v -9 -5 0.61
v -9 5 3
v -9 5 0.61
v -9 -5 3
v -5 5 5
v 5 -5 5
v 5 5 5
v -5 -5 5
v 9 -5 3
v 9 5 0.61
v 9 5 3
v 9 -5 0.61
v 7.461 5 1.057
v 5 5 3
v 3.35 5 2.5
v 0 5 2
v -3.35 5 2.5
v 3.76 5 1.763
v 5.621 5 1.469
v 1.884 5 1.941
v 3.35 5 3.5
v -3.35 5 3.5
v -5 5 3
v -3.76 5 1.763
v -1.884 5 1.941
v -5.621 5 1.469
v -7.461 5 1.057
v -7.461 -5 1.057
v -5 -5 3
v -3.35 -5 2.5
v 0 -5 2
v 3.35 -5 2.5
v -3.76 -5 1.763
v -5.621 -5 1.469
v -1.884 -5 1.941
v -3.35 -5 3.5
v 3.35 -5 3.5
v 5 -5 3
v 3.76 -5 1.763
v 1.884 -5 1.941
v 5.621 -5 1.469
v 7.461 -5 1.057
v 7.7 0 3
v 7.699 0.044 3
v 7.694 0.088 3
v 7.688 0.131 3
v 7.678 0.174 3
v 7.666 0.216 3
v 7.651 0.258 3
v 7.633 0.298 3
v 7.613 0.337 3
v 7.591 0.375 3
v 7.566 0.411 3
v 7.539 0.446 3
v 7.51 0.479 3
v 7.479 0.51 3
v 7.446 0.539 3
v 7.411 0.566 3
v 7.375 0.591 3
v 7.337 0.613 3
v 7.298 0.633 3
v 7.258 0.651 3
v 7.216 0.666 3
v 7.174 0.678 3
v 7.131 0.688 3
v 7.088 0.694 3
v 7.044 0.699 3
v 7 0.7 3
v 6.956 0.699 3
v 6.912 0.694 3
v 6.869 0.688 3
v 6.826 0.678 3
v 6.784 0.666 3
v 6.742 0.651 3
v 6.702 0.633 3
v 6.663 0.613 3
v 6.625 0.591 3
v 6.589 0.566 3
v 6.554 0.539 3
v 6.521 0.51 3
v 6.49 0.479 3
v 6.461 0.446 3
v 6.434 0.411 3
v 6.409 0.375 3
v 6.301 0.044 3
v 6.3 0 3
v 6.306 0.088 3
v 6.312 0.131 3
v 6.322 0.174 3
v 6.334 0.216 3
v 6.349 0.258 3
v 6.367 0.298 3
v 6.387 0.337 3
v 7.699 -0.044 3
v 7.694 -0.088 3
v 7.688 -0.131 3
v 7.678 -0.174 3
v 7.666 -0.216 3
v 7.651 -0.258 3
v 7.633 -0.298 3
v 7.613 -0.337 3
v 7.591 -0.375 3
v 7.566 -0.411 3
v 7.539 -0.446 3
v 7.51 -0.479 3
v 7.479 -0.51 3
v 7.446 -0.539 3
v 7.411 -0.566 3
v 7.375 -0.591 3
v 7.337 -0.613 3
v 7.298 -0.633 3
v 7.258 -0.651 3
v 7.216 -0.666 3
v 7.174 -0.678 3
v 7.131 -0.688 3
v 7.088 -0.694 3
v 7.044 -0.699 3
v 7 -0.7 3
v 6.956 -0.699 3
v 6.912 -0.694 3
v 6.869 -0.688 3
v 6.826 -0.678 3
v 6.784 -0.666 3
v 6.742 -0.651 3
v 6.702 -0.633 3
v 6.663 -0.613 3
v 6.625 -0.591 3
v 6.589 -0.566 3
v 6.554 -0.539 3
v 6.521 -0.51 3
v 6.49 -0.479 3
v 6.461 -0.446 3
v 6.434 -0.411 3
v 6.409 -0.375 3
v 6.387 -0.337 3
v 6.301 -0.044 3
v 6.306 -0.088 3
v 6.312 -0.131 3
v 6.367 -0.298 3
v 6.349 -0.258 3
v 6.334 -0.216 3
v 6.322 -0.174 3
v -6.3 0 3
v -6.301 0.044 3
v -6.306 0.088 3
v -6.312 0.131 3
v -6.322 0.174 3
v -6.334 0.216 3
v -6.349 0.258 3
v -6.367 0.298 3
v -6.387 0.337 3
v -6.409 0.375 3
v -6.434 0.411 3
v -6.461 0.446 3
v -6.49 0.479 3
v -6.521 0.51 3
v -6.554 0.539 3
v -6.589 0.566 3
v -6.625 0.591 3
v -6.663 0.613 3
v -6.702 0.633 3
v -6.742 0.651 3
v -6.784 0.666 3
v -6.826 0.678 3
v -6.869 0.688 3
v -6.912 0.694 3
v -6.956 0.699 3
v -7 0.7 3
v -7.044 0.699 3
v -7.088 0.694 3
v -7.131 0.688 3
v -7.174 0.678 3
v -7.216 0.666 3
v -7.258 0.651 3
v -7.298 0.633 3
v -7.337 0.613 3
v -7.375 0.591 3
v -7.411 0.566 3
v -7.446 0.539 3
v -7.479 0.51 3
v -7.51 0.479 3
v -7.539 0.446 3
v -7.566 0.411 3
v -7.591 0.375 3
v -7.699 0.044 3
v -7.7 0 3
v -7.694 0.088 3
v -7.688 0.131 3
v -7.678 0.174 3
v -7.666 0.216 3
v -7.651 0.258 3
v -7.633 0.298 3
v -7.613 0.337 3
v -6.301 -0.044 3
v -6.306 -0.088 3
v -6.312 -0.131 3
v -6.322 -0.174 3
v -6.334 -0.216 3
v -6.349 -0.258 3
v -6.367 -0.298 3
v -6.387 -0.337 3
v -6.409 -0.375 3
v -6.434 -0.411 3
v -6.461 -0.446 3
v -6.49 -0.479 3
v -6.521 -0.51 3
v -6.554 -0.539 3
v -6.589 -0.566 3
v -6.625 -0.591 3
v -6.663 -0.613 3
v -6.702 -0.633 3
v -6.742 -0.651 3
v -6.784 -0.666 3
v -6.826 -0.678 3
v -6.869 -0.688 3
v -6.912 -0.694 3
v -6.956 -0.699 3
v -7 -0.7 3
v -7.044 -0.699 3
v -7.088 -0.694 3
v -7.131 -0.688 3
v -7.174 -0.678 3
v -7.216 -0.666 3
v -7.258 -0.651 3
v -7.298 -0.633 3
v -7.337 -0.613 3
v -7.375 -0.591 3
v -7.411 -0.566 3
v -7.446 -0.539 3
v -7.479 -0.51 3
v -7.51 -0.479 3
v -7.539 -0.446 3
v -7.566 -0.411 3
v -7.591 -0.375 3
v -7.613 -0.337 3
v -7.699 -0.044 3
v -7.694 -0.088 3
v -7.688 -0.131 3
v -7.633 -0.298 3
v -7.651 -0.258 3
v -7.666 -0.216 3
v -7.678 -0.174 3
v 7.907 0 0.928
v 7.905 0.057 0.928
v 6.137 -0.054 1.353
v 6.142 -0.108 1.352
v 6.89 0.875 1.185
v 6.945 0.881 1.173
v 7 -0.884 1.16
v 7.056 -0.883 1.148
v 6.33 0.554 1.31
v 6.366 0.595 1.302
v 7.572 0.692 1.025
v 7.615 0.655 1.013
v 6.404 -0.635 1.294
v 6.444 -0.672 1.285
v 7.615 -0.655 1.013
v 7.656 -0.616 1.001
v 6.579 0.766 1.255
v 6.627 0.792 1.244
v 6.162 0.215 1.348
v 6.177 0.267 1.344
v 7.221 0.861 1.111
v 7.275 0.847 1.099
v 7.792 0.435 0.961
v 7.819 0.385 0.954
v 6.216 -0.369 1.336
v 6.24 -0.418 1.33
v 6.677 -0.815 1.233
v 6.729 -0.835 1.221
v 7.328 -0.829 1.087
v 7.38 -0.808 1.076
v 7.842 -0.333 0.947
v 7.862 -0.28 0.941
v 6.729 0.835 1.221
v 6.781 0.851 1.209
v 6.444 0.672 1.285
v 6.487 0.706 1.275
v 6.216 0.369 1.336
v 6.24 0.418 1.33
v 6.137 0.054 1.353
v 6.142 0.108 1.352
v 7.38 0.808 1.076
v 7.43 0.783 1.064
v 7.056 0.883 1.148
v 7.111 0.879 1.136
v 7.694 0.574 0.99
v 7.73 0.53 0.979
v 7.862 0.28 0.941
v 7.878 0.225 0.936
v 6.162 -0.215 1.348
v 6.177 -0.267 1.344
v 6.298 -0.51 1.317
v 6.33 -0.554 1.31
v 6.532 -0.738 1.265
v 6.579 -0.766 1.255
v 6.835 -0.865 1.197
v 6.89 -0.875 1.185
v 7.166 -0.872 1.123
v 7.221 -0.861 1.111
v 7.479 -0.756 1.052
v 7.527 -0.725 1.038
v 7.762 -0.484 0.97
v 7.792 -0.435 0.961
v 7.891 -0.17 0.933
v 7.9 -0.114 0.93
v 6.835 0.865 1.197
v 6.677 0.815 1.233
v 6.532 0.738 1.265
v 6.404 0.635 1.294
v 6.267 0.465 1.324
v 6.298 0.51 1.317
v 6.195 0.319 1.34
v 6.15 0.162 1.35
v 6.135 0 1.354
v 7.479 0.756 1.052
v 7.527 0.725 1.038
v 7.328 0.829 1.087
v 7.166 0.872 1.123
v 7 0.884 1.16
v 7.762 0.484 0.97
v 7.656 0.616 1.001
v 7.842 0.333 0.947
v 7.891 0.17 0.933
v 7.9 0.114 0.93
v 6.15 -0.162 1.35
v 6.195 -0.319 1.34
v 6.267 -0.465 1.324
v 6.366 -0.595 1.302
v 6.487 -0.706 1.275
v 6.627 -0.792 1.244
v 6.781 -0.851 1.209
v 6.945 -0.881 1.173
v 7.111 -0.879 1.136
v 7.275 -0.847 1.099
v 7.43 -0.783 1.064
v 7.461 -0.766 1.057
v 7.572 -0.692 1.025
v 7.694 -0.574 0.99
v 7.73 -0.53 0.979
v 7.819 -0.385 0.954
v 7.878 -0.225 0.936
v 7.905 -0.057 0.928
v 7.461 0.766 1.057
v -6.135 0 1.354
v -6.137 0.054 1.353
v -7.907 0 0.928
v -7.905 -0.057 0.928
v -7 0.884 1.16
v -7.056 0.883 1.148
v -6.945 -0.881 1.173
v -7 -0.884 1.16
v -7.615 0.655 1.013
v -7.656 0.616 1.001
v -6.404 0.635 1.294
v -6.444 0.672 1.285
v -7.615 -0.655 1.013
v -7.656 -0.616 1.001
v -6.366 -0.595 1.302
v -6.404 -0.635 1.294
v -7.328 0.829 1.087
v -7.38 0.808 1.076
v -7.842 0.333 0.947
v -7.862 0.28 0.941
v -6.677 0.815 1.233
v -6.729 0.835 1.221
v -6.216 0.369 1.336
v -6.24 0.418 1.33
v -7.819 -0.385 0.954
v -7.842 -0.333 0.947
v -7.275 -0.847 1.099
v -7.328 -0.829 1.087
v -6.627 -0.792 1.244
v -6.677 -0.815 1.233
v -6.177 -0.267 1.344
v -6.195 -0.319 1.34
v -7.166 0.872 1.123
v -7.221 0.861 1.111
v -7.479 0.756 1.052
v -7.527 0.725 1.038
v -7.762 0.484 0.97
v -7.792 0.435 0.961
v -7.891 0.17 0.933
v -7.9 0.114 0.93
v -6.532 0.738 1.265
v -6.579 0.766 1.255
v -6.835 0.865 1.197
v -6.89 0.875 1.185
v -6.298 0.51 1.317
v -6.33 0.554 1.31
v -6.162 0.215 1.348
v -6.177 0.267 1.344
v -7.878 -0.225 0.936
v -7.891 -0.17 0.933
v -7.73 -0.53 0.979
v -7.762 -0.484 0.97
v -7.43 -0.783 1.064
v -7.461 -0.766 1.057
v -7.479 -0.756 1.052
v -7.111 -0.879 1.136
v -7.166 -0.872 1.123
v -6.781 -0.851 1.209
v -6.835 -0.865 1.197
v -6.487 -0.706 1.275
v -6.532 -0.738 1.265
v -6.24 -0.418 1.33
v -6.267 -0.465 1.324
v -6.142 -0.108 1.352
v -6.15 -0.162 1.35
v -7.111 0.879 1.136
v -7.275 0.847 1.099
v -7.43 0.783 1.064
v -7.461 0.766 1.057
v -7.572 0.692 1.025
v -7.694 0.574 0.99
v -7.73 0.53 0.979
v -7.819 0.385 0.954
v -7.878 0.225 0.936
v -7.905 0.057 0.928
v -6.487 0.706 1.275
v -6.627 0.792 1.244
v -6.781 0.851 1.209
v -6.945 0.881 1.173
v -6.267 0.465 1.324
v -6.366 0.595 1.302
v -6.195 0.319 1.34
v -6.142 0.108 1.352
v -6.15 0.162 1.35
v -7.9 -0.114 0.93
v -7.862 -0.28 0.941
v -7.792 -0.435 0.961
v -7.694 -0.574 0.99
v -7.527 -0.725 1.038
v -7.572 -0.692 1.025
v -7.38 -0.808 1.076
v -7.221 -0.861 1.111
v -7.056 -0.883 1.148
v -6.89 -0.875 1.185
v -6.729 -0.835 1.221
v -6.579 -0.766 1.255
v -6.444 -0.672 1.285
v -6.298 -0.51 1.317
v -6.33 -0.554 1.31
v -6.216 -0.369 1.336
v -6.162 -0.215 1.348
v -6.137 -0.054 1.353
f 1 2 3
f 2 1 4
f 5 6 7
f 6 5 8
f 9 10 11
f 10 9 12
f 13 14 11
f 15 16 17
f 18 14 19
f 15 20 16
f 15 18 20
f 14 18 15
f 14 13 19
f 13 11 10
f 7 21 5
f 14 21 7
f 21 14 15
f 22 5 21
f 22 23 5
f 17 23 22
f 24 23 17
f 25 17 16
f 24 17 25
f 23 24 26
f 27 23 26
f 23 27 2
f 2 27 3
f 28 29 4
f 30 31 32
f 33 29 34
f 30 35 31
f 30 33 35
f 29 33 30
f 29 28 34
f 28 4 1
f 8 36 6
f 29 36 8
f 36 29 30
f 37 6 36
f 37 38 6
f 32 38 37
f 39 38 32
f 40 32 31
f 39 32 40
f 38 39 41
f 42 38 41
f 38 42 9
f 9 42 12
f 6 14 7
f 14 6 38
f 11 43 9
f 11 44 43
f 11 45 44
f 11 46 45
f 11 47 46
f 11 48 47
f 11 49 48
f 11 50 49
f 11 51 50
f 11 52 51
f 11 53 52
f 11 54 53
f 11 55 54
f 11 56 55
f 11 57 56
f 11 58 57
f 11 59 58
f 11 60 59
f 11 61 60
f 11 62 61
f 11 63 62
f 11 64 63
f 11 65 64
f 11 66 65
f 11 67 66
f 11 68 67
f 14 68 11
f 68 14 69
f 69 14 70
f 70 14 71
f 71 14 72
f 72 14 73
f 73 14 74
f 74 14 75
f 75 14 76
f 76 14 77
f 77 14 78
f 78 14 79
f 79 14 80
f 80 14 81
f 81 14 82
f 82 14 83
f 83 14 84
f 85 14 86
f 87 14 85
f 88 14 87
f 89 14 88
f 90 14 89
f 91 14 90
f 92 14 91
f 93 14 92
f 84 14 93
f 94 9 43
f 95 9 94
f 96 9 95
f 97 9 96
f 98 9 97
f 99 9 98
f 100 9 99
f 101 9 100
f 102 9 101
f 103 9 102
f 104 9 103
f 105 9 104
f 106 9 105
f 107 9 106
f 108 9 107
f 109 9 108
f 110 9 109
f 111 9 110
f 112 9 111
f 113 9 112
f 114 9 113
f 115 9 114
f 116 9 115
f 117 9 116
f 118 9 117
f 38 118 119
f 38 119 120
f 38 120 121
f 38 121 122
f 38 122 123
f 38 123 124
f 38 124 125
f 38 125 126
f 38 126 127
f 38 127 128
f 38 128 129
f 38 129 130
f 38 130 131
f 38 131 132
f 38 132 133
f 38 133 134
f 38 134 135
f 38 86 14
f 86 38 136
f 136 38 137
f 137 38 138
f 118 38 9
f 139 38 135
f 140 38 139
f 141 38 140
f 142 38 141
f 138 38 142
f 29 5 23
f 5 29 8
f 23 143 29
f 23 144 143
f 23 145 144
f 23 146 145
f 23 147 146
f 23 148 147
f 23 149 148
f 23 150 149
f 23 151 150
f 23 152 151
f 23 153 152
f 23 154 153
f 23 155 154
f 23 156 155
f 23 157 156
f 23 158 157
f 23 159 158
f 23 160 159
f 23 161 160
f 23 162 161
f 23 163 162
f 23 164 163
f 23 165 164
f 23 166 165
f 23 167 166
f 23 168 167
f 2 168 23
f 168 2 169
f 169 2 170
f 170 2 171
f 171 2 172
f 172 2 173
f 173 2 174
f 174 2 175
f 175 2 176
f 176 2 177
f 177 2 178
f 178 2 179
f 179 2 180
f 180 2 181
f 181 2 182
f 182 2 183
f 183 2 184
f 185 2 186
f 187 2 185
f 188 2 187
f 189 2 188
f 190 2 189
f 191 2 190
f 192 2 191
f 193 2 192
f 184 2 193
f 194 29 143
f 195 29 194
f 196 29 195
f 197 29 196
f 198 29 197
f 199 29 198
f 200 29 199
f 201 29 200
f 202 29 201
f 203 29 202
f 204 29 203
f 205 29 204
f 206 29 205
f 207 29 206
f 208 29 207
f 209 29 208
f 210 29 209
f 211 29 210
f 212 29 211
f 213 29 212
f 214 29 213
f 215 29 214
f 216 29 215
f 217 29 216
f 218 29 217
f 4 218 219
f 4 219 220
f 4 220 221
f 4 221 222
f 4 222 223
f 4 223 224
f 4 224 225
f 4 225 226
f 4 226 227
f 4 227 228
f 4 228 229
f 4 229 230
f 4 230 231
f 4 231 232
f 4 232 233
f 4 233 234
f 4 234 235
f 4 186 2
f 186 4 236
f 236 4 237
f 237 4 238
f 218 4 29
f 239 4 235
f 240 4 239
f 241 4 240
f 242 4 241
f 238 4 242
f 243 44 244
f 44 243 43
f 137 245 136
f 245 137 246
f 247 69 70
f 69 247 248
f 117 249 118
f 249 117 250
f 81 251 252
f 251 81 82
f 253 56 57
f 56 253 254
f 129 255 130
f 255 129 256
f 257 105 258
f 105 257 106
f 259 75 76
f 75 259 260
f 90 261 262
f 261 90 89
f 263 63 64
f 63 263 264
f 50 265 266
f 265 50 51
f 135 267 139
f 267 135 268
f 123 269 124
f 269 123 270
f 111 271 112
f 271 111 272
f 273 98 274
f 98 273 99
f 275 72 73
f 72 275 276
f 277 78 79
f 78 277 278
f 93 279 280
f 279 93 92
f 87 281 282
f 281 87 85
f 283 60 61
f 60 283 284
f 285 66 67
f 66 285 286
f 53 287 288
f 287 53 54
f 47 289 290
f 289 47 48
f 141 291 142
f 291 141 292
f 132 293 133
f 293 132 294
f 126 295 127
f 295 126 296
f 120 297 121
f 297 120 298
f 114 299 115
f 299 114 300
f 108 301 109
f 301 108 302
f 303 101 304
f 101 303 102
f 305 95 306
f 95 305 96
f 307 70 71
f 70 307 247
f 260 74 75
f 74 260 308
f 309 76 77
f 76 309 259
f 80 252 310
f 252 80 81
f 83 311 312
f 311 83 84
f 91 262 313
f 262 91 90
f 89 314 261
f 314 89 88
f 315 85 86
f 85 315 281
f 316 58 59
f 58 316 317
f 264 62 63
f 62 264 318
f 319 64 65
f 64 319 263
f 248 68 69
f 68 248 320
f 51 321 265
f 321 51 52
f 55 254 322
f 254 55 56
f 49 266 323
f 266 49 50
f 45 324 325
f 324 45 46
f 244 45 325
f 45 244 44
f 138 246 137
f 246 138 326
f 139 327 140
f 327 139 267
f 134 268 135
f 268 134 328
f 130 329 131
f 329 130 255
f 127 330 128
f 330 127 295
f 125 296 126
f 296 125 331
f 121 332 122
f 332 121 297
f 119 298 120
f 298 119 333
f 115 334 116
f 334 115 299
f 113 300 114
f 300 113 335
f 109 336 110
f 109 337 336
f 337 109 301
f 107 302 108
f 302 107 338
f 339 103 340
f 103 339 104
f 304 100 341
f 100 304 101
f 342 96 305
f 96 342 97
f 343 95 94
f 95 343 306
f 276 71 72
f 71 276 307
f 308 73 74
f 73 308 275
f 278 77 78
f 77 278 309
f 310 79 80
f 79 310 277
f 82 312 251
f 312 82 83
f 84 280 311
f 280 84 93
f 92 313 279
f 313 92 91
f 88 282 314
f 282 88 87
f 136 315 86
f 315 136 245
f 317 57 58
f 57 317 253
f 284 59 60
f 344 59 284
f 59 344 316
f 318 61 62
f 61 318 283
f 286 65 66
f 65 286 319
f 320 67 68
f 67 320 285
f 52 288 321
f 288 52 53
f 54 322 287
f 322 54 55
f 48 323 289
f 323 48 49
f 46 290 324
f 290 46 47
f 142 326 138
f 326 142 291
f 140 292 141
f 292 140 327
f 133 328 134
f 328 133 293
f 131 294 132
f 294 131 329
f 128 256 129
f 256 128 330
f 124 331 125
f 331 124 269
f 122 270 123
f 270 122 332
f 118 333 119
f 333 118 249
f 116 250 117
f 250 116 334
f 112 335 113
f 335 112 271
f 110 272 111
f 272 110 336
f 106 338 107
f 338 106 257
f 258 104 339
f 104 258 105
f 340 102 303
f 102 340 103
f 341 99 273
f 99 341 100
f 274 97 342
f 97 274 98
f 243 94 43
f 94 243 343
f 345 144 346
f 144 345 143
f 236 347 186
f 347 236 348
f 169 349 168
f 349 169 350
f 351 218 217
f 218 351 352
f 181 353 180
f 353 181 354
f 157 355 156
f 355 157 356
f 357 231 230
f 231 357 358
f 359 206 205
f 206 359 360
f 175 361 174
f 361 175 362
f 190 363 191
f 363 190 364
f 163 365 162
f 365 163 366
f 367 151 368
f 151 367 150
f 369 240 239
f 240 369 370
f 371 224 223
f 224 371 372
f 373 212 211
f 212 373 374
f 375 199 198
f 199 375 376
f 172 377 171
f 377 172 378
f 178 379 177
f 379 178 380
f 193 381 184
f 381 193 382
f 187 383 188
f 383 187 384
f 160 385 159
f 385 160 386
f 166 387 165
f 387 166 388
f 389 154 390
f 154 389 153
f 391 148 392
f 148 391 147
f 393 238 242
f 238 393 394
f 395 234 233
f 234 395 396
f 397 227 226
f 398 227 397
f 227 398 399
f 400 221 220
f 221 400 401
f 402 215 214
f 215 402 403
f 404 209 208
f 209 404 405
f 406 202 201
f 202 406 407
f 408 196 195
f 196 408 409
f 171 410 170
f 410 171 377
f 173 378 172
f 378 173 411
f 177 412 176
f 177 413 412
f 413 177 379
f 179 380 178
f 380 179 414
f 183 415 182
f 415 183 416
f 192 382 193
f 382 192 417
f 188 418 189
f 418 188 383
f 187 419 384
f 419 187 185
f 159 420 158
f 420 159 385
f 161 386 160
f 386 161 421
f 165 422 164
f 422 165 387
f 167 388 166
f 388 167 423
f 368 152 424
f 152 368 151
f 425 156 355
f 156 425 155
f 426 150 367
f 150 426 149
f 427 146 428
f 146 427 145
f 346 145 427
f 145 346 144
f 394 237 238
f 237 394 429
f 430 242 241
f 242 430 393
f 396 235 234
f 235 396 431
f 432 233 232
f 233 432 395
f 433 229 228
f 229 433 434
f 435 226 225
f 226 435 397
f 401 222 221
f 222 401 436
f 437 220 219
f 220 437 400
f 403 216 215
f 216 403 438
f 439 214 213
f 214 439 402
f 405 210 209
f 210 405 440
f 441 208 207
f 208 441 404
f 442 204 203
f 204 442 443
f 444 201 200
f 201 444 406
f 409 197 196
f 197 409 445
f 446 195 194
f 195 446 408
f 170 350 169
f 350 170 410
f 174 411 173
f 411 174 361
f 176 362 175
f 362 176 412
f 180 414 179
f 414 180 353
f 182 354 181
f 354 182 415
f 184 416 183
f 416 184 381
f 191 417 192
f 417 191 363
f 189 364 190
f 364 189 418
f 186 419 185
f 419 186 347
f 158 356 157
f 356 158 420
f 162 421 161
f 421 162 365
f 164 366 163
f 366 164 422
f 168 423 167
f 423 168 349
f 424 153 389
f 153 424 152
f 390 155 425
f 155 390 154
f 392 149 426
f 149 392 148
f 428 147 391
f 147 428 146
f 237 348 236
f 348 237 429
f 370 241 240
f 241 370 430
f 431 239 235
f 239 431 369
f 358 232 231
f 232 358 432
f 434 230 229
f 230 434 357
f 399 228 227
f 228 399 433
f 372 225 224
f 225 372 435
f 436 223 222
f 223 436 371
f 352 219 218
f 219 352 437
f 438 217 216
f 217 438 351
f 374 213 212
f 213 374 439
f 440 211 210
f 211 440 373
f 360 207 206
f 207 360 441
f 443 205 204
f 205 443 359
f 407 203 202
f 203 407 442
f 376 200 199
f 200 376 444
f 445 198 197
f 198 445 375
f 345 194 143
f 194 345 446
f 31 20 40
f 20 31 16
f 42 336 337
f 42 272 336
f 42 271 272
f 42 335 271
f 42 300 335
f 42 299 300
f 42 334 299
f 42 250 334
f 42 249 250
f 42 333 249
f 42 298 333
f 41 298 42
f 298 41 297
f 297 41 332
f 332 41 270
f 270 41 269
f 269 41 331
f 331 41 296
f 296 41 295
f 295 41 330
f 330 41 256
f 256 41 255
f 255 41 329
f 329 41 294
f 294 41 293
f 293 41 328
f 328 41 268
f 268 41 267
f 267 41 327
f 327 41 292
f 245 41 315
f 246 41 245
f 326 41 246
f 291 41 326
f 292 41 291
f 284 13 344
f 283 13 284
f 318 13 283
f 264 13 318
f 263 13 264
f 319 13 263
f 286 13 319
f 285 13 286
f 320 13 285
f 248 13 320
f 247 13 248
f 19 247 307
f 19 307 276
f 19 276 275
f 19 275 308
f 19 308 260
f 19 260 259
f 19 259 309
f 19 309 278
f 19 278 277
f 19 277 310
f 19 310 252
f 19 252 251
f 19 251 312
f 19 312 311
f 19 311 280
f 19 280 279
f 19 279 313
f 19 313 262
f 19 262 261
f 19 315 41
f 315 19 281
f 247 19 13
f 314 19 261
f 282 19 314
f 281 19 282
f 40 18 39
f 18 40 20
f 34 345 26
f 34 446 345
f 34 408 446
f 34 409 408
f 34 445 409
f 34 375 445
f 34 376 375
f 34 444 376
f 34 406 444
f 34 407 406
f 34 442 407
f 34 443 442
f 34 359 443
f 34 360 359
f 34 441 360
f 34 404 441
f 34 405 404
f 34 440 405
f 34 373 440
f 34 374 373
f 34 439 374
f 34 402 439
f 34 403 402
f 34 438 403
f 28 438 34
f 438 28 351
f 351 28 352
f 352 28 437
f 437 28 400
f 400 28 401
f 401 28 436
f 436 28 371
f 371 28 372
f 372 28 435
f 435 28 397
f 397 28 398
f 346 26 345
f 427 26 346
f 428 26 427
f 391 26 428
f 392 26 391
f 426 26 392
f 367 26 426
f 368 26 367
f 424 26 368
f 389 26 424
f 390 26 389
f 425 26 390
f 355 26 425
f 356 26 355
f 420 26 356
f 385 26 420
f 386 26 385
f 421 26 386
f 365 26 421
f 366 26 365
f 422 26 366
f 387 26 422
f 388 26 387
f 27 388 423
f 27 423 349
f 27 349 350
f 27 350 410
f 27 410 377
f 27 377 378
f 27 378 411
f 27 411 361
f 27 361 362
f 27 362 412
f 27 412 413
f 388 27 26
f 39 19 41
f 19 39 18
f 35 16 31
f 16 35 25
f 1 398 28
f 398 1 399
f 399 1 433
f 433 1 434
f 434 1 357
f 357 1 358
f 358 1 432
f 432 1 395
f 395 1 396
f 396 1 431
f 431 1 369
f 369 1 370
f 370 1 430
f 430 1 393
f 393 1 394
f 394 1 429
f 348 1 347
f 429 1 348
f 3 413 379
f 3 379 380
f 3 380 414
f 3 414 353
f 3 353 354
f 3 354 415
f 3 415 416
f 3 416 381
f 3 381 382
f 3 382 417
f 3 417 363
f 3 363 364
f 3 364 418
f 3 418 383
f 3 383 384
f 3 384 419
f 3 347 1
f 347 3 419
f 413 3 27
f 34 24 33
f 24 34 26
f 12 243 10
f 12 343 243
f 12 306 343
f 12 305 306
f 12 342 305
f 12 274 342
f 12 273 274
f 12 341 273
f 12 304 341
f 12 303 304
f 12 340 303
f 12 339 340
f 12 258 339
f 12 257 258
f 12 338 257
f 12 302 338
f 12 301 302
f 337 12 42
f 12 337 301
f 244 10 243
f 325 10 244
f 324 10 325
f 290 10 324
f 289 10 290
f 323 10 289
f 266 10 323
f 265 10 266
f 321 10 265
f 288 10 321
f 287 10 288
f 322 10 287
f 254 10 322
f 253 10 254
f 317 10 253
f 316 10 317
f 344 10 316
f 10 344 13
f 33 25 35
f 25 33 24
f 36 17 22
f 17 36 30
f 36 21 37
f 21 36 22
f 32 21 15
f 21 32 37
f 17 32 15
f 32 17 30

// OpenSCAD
difference() {
    translate([-9, -5, 0])
    cube([18, 10, 5]);
    
    translate([5, -5, 3])
    cube([5, 10, 3]);
    
    translate([-10, -5, 3])
    cube([5, 10, 3]);
    
    translate([7, 0, 0])
    cylinder(h=10, r1=1, r2=0, $fn=100);
    
    translate([-7, 0, 0])
    cylinder(h=10,r1=1, r2=0, $fn=100);
    
    translate([0, 0, -28])
    rotate([90,0,0])
    cylinder(h=11, r1=30, r2=30, center=true, $fn=100);
    
    translate([0, 0, 3])
    cube([6.7, 10, 1], center = true);
}
